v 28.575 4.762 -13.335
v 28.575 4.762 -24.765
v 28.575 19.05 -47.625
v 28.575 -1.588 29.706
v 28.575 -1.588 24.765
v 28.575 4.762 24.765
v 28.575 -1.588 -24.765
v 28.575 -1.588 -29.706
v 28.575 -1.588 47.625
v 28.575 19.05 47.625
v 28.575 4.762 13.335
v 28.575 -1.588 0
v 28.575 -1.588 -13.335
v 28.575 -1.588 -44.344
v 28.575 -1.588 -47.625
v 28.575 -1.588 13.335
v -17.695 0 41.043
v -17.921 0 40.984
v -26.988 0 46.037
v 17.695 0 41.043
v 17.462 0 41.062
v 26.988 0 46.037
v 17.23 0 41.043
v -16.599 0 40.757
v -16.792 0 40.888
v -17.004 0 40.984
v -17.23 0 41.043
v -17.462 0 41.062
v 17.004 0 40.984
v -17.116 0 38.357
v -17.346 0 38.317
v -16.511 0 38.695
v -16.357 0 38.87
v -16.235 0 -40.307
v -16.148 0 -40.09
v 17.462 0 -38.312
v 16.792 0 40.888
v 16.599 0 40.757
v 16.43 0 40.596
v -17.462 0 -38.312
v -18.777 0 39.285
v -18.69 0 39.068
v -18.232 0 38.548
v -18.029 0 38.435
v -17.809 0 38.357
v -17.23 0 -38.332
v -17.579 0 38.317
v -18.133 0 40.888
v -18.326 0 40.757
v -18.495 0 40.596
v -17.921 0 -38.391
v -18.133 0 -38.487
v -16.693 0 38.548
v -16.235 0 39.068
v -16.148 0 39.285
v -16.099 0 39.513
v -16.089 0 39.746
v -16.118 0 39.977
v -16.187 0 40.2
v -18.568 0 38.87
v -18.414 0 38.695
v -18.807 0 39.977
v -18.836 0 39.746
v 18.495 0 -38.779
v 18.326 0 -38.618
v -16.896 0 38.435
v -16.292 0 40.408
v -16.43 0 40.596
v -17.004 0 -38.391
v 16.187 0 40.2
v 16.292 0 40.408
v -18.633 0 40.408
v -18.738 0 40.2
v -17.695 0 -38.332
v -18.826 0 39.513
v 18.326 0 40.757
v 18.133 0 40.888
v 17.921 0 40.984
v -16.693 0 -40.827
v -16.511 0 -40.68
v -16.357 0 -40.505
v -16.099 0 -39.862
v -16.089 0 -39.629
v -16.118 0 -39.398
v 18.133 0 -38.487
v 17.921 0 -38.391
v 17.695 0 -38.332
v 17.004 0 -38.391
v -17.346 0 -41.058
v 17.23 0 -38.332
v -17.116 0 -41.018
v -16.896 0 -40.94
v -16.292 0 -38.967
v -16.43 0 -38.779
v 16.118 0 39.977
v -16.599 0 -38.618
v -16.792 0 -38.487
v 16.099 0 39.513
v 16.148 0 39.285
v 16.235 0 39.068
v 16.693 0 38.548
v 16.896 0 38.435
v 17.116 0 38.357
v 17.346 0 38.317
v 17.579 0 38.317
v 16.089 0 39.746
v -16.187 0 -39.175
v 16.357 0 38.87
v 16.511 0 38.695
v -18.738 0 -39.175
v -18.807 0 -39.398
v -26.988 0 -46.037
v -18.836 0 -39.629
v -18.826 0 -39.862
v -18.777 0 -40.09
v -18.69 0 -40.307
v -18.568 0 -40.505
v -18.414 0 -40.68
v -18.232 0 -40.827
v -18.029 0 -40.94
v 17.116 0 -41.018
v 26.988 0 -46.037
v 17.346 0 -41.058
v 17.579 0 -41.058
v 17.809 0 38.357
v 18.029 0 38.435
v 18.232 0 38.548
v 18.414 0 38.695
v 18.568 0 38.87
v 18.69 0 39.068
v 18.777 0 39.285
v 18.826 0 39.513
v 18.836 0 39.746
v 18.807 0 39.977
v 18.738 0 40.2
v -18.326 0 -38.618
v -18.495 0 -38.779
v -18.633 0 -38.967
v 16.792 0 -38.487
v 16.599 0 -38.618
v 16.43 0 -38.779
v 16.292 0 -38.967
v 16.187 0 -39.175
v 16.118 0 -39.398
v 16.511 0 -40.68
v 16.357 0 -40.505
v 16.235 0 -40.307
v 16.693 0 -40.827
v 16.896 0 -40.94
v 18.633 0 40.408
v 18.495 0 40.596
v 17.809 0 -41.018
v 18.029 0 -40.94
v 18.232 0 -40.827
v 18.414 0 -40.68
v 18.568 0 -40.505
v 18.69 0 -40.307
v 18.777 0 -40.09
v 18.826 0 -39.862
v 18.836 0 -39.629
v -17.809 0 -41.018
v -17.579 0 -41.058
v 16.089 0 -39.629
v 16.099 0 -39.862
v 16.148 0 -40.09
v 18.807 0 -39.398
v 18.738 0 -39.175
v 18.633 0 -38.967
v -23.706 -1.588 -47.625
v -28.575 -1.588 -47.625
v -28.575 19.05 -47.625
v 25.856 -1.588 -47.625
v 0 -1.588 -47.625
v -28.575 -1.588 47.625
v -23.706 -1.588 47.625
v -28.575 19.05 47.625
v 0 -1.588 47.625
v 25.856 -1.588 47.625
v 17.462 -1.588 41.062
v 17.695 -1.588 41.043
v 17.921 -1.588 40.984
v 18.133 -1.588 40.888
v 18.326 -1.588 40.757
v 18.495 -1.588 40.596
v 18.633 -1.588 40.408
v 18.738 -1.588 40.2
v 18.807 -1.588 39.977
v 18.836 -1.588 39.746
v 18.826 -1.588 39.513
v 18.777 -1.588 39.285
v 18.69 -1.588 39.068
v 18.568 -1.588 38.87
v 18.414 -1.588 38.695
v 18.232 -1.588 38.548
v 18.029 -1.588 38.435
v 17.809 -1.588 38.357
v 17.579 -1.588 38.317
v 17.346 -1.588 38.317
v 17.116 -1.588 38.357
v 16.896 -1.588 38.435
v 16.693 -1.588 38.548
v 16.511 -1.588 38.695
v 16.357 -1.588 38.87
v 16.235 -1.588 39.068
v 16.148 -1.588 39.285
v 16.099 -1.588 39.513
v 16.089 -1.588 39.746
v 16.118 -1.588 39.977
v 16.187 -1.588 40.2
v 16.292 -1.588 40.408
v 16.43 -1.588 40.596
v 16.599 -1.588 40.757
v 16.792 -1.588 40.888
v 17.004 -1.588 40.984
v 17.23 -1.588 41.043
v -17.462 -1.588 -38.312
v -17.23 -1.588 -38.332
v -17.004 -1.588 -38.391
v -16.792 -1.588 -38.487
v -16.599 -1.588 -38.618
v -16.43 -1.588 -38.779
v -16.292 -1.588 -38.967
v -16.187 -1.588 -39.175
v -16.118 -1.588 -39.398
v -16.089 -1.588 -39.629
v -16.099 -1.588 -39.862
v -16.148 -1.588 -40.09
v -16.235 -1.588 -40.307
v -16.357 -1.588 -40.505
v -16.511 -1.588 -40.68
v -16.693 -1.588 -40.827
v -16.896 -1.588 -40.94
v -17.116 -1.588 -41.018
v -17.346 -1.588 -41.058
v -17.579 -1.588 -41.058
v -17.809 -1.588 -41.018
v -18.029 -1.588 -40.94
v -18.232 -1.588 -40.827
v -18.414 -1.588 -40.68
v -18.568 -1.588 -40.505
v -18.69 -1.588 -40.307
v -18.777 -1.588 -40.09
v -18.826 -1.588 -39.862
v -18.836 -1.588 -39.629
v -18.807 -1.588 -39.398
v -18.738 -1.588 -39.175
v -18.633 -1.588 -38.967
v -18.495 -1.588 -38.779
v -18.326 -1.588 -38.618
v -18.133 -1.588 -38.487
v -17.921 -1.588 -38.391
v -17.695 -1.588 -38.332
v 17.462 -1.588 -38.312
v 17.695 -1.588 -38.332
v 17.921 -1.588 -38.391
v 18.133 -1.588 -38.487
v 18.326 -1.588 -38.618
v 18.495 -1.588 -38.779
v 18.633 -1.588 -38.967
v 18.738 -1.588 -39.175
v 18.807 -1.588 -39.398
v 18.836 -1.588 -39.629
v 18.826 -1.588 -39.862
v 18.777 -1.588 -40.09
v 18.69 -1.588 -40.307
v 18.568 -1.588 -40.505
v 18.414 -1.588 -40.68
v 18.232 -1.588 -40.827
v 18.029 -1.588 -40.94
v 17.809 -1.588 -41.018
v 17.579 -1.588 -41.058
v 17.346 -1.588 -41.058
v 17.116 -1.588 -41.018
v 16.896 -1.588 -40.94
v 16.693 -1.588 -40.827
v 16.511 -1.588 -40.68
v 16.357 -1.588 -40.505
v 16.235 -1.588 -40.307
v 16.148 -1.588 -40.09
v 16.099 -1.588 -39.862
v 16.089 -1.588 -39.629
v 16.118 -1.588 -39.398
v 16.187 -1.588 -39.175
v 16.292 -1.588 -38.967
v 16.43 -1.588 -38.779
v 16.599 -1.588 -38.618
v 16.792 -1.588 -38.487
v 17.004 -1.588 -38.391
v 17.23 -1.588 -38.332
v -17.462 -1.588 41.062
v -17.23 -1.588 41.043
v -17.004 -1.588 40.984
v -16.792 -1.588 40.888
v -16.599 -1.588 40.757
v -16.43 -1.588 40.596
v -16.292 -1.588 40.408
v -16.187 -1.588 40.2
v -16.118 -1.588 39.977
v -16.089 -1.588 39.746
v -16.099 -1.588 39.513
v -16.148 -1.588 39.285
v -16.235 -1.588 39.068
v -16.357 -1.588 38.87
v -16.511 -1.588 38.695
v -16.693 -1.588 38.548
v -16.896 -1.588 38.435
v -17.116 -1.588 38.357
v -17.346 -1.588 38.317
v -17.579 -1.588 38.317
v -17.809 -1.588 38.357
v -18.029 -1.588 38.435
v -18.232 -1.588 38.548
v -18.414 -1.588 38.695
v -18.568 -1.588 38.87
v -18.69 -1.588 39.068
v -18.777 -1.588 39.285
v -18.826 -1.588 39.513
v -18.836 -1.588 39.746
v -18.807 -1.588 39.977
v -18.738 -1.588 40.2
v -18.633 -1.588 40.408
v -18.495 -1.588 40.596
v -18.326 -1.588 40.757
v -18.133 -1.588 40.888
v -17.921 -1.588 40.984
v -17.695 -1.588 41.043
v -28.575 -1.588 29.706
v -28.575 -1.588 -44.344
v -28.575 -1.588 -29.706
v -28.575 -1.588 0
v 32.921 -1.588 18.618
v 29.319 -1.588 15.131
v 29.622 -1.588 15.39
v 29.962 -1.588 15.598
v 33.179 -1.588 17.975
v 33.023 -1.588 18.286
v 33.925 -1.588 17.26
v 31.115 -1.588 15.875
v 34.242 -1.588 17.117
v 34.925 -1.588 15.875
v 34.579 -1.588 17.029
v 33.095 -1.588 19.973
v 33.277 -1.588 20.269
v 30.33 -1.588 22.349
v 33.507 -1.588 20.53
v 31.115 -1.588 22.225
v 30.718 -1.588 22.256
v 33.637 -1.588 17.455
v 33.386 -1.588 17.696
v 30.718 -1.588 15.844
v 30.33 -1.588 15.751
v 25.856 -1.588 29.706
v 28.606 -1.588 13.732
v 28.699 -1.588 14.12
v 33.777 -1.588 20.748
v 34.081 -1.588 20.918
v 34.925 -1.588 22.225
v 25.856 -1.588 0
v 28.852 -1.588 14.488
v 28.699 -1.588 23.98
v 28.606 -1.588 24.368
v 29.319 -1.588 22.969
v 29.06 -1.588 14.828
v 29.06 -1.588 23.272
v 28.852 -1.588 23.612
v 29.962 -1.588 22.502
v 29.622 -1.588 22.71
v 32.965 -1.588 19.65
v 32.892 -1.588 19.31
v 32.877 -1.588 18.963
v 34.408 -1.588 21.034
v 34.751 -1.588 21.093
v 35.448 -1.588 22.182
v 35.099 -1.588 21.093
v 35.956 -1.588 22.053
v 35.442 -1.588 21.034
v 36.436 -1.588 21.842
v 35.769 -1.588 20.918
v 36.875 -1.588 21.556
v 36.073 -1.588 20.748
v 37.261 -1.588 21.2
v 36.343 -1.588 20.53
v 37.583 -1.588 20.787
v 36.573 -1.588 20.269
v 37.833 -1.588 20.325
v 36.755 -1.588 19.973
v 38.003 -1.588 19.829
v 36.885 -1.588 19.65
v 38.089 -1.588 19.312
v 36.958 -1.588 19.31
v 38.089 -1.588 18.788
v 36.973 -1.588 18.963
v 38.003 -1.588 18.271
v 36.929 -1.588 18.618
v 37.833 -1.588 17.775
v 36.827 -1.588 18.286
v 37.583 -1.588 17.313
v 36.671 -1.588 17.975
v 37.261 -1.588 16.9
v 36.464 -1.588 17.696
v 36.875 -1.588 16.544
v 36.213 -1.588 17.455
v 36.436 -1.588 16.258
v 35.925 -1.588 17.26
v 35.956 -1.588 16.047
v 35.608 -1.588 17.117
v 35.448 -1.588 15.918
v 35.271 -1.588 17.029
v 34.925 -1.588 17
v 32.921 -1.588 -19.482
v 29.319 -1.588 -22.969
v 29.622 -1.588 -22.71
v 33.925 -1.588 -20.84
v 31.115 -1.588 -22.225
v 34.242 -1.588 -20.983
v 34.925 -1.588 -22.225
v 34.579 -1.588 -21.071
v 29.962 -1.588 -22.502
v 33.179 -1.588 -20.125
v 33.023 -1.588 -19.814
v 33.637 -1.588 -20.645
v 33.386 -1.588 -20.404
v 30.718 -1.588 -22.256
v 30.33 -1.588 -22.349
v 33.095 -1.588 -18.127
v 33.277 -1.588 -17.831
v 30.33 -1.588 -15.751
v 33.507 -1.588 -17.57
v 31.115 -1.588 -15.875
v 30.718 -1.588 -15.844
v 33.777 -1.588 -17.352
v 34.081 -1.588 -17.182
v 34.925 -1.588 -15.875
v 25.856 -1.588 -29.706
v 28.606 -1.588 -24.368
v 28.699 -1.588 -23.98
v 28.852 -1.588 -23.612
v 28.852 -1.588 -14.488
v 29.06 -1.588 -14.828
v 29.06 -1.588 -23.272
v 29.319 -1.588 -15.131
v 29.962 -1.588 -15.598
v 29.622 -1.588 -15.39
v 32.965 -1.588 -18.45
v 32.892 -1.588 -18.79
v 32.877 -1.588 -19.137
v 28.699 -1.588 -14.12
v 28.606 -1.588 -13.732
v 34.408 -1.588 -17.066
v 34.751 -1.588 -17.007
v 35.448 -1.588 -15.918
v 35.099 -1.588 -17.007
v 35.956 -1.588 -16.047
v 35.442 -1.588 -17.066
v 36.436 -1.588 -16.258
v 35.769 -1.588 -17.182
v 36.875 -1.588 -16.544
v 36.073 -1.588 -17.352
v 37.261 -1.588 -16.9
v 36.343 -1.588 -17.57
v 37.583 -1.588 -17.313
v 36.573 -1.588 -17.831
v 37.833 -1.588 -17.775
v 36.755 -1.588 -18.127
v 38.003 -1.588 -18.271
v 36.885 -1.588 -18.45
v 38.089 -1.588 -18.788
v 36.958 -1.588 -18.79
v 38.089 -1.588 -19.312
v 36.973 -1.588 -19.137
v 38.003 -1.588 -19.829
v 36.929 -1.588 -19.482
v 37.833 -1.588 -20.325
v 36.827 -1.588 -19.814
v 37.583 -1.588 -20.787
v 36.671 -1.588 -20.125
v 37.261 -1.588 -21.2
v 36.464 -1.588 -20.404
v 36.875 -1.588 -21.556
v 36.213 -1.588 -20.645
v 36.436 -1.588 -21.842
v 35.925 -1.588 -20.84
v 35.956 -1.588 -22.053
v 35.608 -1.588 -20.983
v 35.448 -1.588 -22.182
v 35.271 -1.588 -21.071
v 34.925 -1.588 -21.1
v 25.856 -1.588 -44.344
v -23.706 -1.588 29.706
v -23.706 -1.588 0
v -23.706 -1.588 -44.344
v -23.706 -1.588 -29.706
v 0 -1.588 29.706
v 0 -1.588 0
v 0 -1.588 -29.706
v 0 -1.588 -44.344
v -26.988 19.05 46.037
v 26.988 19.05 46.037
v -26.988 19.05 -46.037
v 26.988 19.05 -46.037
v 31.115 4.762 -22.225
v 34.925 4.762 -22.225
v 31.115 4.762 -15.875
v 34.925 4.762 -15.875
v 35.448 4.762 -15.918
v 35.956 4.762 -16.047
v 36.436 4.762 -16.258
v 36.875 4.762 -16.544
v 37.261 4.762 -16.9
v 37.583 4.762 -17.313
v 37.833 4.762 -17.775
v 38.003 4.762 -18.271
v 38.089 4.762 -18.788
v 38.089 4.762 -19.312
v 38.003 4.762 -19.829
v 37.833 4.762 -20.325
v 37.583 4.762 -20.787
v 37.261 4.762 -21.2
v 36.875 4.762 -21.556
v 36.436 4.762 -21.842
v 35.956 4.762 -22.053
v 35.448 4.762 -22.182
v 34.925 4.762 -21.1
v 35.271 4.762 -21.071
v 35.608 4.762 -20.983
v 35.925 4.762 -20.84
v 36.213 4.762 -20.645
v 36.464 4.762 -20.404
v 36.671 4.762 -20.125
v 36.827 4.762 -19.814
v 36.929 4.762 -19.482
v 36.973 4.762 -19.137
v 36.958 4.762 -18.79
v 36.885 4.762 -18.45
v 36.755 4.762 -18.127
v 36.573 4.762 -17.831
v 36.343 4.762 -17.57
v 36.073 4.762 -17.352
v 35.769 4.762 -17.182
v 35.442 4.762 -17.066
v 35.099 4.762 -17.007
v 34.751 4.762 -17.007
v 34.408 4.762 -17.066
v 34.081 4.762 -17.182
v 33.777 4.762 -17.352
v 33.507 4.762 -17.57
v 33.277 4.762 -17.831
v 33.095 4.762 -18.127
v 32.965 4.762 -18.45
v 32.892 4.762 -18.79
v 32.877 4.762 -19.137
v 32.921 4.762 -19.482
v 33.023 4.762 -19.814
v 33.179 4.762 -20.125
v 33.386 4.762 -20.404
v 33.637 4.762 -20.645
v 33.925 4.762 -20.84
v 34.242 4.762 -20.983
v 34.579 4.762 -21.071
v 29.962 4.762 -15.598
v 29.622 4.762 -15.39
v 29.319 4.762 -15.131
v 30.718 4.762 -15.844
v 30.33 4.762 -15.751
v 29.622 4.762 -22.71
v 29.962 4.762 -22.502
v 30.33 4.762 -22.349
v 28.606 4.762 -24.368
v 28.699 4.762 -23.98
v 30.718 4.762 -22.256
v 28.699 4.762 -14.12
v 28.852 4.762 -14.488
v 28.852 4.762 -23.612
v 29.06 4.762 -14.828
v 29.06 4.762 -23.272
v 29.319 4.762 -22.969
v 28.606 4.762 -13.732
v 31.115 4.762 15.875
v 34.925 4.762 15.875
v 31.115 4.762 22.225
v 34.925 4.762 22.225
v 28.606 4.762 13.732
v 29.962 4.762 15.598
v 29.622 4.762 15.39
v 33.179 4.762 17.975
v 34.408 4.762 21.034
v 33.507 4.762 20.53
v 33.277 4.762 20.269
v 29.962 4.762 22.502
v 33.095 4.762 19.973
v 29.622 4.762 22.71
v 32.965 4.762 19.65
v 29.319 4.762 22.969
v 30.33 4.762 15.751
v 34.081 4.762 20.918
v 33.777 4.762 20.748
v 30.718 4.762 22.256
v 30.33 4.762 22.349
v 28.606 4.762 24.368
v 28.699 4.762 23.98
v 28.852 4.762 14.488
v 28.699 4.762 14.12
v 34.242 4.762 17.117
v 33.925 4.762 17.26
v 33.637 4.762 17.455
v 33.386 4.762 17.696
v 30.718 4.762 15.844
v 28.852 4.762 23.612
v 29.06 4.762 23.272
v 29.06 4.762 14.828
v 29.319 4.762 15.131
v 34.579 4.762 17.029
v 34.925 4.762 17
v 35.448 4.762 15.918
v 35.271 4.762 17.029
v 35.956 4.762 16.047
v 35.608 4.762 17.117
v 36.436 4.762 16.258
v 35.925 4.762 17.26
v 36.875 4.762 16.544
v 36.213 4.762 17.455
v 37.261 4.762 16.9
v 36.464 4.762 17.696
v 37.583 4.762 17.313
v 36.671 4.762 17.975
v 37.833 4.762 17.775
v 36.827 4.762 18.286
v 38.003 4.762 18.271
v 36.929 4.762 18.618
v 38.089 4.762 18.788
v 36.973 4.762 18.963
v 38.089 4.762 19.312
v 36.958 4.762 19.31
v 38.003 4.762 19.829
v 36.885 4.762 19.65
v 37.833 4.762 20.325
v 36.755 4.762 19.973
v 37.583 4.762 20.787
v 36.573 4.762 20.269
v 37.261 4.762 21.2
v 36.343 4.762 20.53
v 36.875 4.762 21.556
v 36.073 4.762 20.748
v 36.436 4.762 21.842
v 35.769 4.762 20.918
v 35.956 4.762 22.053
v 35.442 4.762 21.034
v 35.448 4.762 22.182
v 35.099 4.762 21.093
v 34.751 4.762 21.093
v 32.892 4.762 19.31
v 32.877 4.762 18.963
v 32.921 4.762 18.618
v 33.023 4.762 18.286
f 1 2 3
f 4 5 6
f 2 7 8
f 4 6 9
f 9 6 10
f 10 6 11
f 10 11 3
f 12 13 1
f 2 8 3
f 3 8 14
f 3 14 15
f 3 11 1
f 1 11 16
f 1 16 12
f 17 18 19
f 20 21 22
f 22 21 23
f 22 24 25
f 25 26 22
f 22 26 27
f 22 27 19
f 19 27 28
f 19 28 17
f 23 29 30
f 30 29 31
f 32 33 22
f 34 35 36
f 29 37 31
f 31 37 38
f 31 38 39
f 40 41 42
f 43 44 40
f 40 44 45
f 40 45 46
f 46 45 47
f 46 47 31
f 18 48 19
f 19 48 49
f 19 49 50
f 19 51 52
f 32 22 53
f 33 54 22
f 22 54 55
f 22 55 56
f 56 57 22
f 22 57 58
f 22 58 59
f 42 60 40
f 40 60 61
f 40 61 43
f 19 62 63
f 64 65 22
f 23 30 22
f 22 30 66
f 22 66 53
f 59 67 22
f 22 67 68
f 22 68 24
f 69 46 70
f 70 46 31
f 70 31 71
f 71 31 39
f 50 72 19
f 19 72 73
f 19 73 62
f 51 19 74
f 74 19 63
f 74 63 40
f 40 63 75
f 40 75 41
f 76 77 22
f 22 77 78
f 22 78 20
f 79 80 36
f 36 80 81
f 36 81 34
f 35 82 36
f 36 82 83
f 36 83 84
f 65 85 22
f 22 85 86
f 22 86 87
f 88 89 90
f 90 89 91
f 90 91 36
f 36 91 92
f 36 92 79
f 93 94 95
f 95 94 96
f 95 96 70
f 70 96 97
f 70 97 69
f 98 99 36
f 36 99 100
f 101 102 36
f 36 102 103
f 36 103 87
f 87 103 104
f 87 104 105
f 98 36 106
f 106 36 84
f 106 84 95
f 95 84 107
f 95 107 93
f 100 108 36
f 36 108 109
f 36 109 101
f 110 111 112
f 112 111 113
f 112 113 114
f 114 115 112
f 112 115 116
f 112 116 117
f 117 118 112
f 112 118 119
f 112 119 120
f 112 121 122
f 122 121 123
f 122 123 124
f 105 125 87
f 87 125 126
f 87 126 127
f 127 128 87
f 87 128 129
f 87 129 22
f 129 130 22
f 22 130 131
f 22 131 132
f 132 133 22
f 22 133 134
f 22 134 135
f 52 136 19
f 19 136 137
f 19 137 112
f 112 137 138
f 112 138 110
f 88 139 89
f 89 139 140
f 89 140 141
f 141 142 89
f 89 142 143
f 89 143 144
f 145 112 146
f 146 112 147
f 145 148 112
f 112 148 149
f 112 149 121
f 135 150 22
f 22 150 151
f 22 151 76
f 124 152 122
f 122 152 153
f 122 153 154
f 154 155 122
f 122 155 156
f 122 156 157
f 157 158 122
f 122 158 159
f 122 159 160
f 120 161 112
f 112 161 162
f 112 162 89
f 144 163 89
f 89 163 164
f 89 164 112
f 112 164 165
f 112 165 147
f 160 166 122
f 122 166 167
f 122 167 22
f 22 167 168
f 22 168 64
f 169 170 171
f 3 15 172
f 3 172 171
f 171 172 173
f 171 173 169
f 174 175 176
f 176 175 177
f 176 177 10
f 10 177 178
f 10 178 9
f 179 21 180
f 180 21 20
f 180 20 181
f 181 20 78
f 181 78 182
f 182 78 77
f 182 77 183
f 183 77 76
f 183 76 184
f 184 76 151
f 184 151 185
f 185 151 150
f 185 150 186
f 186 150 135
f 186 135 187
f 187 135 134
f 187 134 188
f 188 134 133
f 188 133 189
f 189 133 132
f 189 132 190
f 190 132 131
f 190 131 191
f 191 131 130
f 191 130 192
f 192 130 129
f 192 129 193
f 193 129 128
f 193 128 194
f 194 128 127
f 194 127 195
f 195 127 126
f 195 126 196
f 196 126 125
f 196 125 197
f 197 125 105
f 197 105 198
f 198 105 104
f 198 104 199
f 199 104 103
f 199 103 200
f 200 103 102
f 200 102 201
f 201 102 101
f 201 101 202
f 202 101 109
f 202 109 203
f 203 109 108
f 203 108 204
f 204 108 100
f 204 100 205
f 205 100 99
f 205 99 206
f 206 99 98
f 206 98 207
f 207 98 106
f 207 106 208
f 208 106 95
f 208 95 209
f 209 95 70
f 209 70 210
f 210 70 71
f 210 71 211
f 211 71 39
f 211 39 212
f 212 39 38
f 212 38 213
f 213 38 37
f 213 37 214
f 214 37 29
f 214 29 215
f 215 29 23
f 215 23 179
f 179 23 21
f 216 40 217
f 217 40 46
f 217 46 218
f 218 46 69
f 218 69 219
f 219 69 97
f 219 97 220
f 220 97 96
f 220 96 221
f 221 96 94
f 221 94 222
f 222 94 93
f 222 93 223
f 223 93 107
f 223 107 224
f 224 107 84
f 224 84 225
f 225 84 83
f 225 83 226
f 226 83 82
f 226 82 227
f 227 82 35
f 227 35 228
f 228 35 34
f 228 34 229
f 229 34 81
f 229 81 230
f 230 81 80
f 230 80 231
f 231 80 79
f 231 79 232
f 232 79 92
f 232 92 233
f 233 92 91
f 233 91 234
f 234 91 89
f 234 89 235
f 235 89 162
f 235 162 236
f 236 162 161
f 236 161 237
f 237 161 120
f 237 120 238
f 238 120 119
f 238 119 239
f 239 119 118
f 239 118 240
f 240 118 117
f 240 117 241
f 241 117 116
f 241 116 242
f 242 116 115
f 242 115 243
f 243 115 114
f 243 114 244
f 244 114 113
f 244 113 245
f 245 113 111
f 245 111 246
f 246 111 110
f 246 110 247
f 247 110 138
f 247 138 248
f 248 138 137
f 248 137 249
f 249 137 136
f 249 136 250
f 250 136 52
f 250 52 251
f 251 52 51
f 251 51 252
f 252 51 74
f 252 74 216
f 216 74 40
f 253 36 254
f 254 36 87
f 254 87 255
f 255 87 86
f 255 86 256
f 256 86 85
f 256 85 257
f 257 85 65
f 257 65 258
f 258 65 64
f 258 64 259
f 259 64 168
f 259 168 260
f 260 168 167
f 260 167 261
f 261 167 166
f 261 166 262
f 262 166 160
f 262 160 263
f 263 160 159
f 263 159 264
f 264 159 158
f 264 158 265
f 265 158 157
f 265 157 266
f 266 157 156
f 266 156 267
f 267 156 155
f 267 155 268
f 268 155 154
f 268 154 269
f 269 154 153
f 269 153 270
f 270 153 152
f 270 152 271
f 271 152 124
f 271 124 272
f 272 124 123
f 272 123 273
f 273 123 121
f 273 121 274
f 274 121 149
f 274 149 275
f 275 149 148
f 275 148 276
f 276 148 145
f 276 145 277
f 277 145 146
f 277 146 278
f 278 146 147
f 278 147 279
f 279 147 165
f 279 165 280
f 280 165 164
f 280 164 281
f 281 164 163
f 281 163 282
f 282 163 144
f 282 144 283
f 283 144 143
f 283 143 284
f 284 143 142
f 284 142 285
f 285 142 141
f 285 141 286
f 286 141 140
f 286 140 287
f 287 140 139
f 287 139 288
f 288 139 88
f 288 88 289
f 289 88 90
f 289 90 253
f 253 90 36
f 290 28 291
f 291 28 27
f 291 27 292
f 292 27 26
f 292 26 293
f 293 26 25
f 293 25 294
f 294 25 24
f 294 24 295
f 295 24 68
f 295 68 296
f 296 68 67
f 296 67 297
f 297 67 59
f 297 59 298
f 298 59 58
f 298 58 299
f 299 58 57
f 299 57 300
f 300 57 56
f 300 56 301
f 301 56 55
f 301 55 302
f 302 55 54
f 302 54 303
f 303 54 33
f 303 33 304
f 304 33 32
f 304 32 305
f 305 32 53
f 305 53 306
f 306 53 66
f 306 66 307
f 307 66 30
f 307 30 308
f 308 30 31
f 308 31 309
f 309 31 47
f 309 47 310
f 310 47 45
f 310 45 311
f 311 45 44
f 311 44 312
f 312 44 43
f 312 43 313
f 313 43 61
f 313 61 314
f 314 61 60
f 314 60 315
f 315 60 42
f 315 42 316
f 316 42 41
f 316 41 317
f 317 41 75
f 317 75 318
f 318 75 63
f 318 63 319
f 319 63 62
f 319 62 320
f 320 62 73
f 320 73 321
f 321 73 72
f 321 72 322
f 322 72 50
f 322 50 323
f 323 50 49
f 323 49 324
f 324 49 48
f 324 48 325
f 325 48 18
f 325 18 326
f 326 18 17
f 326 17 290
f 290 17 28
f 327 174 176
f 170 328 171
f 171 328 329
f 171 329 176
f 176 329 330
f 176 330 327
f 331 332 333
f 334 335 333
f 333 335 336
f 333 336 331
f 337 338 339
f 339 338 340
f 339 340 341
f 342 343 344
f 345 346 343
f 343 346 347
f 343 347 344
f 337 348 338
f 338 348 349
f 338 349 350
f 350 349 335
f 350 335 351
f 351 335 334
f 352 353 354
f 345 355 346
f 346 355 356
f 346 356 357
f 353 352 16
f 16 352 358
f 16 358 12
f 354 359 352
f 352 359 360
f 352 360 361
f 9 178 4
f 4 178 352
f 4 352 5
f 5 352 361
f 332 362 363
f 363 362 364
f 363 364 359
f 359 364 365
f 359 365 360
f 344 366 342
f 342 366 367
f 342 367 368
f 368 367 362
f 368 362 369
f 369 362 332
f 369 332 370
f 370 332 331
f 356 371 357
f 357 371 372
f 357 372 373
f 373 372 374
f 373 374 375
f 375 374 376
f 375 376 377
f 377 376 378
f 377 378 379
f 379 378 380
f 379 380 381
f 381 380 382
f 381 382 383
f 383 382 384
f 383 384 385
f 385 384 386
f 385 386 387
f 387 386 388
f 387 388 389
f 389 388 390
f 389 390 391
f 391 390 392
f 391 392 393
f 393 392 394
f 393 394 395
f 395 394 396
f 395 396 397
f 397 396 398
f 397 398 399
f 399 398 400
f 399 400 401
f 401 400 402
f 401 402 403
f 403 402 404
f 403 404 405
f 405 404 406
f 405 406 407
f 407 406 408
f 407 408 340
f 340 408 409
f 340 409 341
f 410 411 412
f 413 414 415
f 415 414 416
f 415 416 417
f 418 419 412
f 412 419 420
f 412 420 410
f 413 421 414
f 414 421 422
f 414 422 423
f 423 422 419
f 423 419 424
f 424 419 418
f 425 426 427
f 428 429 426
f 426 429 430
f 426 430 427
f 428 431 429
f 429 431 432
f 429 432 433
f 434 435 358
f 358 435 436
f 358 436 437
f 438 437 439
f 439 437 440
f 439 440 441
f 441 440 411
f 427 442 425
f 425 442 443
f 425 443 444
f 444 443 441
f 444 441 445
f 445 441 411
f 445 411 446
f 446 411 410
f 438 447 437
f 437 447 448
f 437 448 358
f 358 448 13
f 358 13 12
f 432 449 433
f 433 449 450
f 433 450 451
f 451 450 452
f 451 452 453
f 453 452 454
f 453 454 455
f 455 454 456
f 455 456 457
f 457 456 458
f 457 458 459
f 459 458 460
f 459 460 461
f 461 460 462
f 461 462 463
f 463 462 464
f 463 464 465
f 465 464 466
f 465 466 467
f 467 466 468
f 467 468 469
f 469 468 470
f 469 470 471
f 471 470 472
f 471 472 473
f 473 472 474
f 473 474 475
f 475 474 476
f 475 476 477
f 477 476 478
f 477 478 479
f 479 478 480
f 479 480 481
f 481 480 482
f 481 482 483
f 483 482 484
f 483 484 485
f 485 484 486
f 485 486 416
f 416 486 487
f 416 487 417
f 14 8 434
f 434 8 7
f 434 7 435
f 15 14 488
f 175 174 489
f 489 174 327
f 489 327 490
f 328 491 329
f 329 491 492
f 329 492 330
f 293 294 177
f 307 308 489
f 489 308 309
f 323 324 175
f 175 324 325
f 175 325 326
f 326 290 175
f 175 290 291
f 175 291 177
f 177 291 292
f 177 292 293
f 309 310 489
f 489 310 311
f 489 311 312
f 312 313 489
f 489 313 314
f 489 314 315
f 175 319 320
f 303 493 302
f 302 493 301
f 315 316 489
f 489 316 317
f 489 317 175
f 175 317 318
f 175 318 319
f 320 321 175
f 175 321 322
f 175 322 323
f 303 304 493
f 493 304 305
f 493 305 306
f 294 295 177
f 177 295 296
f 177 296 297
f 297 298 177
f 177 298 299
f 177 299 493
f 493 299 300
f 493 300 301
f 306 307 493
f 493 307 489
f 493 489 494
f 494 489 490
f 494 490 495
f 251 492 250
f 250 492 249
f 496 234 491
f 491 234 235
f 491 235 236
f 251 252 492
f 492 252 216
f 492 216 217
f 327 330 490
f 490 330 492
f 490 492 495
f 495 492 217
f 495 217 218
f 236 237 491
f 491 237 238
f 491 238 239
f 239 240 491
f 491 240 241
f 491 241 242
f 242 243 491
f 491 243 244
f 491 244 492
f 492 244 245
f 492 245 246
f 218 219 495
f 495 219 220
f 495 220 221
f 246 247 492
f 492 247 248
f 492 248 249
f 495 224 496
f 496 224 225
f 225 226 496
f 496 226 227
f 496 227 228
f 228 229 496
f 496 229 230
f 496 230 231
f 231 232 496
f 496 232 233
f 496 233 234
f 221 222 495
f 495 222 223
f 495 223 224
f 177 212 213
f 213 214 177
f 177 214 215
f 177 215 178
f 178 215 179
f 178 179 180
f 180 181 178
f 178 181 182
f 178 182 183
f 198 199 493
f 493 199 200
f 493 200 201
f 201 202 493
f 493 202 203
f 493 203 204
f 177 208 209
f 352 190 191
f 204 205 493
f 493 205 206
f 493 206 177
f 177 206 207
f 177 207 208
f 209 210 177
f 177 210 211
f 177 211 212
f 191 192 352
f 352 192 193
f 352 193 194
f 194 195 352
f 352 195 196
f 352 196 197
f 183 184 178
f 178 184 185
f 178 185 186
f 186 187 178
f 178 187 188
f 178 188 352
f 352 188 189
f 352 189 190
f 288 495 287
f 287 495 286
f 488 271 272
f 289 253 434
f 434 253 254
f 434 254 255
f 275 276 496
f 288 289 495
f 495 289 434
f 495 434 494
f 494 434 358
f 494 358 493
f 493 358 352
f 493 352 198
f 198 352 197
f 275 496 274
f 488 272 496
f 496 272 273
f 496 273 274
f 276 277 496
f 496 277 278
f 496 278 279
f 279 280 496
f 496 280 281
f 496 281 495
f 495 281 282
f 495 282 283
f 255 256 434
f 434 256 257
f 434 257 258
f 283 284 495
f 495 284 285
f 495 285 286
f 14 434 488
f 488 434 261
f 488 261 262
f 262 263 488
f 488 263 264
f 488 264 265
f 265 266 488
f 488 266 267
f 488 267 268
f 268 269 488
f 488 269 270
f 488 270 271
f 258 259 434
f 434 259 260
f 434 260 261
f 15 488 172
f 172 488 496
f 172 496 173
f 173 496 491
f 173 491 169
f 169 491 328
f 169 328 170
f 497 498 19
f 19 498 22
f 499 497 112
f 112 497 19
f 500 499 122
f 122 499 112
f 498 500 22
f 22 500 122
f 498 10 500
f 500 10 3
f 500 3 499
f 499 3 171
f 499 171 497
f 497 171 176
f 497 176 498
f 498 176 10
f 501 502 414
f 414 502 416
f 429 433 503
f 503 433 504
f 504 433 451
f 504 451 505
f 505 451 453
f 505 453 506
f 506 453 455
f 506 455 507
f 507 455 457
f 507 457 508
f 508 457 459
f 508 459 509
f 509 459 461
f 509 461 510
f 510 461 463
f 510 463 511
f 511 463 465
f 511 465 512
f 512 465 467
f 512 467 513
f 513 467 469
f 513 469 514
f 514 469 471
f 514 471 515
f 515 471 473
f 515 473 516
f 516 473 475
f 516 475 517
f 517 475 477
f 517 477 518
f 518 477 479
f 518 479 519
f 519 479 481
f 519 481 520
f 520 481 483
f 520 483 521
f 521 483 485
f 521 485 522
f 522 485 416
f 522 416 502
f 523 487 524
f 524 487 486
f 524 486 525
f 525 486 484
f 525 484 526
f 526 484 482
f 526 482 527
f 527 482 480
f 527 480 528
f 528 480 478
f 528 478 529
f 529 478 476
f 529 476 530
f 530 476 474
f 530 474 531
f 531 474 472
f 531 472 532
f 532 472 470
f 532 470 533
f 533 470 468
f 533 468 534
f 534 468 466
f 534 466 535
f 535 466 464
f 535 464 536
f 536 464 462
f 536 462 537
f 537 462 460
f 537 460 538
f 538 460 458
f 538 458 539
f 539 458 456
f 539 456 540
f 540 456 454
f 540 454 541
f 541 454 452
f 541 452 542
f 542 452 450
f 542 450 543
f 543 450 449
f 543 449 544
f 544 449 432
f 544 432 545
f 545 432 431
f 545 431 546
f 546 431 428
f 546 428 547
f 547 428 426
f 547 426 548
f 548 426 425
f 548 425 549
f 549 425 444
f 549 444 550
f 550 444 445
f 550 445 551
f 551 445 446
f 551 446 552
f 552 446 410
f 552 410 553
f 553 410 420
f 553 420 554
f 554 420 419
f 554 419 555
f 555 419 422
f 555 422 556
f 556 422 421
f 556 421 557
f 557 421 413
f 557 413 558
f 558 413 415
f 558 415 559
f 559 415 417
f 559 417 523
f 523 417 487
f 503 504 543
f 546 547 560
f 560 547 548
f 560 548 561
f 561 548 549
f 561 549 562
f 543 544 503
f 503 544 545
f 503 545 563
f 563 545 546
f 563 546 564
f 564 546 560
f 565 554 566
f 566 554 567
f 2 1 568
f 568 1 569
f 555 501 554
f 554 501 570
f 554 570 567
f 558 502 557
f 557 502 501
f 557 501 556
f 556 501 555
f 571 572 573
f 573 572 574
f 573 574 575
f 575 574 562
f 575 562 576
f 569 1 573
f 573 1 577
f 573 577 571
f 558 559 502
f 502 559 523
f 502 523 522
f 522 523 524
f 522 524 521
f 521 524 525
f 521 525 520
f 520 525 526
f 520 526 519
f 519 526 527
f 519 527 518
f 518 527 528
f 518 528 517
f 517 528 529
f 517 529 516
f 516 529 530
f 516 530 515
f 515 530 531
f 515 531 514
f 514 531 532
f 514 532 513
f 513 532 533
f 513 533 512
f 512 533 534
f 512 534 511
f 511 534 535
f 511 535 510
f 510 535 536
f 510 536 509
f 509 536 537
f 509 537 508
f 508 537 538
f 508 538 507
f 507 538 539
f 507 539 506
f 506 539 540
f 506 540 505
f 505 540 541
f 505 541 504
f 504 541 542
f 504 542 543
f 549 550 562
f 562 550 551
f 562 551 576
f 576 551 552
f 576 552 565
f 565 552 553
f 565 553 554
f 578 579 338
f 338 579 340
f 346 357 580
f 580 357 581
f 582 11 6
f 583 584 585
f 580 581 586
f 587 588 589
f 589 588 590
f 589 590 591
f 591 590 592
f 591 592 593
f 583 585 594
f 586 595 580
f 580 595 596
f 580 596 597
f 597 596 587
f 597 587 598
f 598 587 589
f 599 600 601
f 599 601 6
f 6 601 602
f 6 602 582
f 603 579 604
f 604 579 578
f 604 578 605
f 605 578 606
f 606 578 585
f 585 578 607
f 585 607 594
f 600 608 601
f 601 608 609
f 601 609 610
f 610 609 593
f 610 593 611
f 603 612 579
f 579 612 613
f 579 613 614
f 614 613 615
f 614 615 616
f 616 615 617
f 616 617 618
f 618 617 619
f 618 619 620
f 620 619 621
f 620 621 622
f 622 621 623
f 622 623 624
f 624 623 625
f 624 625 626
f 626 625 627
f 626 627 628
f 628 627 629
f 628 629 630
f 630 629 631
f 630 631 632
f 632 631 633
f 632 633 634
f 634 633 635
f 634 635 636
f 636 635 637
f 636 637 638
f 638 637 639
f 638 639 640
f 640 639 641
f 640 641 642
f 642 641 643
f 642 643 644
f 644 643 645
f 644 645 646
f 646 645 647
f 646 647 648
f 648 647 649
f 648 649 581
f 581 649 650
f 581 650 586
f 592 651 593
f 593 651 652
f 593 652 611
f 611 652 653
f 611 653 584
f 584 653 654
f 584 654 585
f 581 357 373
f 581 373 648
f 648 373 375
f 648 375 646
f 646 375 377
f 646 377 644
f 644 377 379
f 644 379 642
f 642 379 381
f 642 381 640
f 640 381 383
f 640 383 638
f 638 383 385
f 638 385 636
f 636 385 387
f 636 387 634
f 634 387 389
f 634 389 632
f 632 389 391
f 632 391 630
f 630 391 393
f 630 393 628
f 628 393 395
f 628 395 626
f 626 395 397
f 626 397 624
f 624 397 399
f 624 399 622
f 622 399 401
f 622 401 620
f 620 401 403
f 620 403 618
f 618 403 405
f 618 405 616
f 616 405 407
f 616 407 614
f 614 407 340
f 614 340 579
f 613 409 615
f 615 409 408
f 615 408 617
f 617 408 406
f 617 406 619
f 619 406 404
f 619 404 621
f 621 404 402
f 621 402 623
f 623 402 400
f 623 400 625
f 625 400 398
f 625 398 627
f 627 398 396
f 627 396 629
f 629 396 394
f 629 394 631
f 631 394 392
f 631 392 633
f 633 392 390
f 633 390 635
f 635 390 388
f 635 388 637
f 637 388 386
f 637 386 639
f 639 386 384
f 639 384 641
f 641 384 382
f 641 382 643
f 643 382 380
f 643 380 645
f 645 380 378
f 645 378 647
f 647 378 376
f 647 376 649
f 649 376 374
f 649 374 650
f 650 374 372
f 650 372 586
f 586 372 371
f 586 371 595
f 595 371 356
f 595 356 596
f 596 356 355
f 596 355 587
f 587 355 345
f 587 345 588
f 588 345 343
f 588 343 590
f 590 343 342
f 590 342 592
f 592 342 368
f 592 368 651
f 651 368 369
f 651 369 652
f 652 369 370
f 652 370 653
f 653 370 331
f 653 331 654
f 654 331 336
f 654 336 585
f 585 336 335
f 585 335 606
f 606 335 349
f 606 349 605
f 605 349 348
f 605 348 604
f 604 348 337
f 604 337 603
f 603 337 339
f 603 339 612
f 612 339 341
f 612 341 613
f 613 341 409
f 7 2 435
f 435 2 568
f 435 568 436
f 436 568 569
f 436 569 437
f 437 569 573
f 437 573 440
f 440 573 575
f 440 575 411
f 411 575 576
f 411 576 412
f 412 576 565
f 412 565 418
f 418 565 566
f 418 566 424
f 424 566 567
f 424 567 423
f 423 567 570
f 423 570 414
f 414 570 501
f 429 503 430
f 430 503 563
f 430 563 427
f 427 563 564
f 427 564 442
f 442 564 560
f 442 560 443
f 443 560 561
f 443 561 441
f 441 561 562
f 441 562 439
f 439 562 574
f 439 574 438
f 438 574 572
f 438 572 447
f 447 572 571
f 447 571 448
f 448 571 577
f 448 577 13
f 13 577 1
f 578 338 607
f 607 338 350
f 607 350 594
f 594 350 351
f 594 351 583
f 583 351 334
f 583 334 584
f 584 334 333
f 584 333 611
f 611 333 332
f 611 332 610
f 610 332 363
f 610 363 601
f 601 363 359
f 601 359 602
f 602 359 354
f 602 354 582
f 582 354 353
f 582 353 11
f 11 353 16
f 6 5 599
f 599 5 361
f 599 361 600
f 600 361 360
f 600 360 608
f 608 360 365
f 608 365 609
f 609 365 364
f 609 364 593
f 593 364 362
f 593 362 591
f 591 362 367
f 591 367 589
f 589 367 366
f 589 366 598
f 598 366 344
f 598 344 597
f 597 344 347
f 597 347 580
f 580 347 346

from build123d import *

# Parameters (mm, degrees)
SKETCH1_W           = 57.15
SKETCH1_H           = 95.25
SKETCH1_R           = 1.375
BOSS_EXTRUDE1_DEPTH = 1.5875
SKETCH1_3_W         = 57.15
SKETCH1_3_H         = 95.25
BOSS_EXTRUDE2_DEPTH = 19.05
SKETCH3_R           = 2.05
BOSS_EXTRUDE5_DEPTH = 6.35
FILLET1_R           = 2.54


with BuildPart() as part:
    # Sketch1 → Boss-Extrude1 (new body)
    with BuildSketch(Plane(origin=(0, 0, 0), x_dir=(1, 0, 0), z_dir=(0, 1, 0))):
        Rectangle(SKETCH1_W, SKETCH1_H)
        with Locations((-17.4625, -39.6875)):
            Circle(SKETCH1_R, mode=Mode.SUBTRACT)
        with Locations((17.4625, -39.6875)):
            Circle(SKETCH1_R, mode=Mode.SUBTRACT)
        with Locations((-17.4625, 39.6875)):
            Circle(SKETCH1_R, mode=Mode.SUBTRACT)
        with Locations((17.4625, 39.6875)):
            Circle(SKETCH1_R, mode=Mode.SUBTRACT)
    extrude(amount=-BOSS_EXTRUDE1_DEPTH)

    # Sketch1<3> → Boss-Extrude2 (add)
    with BuildSketch(Plane(origin=(0, 0, 0), x_dir=(1, 0, 0), z_dir=(0, 1, 0))):
        Rectangle(SKETCH1_3_W, SKETCH1_3_H)
        Polygon((26.9875, 0), (26.9875, -46.0375), (-26.9875, -46.0375), (-26.9875, 46.0375), (26.9875, 46.0375), align=None, mode=Mode.SUBTRACT)
    extrude(amount=BOSS_EXTRUDE2_DEPTH)

    # Sketch3 → Boss-Extrude5 (add)
    # profile 1 of 2: a face of its own
    with BuildSketch(Plane.XZ.offset(1.5875)):
        with BuildLine():
            Line((28.575, 15.875), (34.925, 15.875))
            ThreePointArc((34.925, 15.875), (38.1, 19.05), (34.925, 22.225))
            Line((34.925, 22.225), (28.575, 22.225))
            Line((28.575, 22.225), (28.575, 15.875))
        make_face()
        with Locations((34.925, 19.05)):
            Circle(SKETCH3_R, mode=Mode.SUBTRACT)
    # profile 2 of 2: a face of its own
    with BuildSketch(Plane.XZ.offset(1.5875)):
        with BuildLine():
            Line((34.925, -15.875), (28.575, -15.875))
            Line((28.575, -15.875), (28.575, -22.225))
            Line((28.575, -22.225), (34.925, -22.225))
            ThreePointArc((34.925, -22.225), (38.1, -19.05), (34.925, -15.875))
        make_face()
        with Locations((34.925, -19.05)):
            Circle(SKETCH3_R, mode=Mode.SUBTRACT)
    extrude(amount=-BOSS_EXTRUDE5_DEPTH)

    # Fillet1
    fillet1_edges = [part.edges().sort_by_distance(p)[0] for p in [
        (28.575, 1.5875, -22.225),
        (28.575, 1.5875, -15.875),
        (28.575, 1.5875, 15.875),
        (28.575, 1.5875, 22.225),
    ]]
    fillet(fillet1_edges, radius=FILLET1_R)


solid = part.part
